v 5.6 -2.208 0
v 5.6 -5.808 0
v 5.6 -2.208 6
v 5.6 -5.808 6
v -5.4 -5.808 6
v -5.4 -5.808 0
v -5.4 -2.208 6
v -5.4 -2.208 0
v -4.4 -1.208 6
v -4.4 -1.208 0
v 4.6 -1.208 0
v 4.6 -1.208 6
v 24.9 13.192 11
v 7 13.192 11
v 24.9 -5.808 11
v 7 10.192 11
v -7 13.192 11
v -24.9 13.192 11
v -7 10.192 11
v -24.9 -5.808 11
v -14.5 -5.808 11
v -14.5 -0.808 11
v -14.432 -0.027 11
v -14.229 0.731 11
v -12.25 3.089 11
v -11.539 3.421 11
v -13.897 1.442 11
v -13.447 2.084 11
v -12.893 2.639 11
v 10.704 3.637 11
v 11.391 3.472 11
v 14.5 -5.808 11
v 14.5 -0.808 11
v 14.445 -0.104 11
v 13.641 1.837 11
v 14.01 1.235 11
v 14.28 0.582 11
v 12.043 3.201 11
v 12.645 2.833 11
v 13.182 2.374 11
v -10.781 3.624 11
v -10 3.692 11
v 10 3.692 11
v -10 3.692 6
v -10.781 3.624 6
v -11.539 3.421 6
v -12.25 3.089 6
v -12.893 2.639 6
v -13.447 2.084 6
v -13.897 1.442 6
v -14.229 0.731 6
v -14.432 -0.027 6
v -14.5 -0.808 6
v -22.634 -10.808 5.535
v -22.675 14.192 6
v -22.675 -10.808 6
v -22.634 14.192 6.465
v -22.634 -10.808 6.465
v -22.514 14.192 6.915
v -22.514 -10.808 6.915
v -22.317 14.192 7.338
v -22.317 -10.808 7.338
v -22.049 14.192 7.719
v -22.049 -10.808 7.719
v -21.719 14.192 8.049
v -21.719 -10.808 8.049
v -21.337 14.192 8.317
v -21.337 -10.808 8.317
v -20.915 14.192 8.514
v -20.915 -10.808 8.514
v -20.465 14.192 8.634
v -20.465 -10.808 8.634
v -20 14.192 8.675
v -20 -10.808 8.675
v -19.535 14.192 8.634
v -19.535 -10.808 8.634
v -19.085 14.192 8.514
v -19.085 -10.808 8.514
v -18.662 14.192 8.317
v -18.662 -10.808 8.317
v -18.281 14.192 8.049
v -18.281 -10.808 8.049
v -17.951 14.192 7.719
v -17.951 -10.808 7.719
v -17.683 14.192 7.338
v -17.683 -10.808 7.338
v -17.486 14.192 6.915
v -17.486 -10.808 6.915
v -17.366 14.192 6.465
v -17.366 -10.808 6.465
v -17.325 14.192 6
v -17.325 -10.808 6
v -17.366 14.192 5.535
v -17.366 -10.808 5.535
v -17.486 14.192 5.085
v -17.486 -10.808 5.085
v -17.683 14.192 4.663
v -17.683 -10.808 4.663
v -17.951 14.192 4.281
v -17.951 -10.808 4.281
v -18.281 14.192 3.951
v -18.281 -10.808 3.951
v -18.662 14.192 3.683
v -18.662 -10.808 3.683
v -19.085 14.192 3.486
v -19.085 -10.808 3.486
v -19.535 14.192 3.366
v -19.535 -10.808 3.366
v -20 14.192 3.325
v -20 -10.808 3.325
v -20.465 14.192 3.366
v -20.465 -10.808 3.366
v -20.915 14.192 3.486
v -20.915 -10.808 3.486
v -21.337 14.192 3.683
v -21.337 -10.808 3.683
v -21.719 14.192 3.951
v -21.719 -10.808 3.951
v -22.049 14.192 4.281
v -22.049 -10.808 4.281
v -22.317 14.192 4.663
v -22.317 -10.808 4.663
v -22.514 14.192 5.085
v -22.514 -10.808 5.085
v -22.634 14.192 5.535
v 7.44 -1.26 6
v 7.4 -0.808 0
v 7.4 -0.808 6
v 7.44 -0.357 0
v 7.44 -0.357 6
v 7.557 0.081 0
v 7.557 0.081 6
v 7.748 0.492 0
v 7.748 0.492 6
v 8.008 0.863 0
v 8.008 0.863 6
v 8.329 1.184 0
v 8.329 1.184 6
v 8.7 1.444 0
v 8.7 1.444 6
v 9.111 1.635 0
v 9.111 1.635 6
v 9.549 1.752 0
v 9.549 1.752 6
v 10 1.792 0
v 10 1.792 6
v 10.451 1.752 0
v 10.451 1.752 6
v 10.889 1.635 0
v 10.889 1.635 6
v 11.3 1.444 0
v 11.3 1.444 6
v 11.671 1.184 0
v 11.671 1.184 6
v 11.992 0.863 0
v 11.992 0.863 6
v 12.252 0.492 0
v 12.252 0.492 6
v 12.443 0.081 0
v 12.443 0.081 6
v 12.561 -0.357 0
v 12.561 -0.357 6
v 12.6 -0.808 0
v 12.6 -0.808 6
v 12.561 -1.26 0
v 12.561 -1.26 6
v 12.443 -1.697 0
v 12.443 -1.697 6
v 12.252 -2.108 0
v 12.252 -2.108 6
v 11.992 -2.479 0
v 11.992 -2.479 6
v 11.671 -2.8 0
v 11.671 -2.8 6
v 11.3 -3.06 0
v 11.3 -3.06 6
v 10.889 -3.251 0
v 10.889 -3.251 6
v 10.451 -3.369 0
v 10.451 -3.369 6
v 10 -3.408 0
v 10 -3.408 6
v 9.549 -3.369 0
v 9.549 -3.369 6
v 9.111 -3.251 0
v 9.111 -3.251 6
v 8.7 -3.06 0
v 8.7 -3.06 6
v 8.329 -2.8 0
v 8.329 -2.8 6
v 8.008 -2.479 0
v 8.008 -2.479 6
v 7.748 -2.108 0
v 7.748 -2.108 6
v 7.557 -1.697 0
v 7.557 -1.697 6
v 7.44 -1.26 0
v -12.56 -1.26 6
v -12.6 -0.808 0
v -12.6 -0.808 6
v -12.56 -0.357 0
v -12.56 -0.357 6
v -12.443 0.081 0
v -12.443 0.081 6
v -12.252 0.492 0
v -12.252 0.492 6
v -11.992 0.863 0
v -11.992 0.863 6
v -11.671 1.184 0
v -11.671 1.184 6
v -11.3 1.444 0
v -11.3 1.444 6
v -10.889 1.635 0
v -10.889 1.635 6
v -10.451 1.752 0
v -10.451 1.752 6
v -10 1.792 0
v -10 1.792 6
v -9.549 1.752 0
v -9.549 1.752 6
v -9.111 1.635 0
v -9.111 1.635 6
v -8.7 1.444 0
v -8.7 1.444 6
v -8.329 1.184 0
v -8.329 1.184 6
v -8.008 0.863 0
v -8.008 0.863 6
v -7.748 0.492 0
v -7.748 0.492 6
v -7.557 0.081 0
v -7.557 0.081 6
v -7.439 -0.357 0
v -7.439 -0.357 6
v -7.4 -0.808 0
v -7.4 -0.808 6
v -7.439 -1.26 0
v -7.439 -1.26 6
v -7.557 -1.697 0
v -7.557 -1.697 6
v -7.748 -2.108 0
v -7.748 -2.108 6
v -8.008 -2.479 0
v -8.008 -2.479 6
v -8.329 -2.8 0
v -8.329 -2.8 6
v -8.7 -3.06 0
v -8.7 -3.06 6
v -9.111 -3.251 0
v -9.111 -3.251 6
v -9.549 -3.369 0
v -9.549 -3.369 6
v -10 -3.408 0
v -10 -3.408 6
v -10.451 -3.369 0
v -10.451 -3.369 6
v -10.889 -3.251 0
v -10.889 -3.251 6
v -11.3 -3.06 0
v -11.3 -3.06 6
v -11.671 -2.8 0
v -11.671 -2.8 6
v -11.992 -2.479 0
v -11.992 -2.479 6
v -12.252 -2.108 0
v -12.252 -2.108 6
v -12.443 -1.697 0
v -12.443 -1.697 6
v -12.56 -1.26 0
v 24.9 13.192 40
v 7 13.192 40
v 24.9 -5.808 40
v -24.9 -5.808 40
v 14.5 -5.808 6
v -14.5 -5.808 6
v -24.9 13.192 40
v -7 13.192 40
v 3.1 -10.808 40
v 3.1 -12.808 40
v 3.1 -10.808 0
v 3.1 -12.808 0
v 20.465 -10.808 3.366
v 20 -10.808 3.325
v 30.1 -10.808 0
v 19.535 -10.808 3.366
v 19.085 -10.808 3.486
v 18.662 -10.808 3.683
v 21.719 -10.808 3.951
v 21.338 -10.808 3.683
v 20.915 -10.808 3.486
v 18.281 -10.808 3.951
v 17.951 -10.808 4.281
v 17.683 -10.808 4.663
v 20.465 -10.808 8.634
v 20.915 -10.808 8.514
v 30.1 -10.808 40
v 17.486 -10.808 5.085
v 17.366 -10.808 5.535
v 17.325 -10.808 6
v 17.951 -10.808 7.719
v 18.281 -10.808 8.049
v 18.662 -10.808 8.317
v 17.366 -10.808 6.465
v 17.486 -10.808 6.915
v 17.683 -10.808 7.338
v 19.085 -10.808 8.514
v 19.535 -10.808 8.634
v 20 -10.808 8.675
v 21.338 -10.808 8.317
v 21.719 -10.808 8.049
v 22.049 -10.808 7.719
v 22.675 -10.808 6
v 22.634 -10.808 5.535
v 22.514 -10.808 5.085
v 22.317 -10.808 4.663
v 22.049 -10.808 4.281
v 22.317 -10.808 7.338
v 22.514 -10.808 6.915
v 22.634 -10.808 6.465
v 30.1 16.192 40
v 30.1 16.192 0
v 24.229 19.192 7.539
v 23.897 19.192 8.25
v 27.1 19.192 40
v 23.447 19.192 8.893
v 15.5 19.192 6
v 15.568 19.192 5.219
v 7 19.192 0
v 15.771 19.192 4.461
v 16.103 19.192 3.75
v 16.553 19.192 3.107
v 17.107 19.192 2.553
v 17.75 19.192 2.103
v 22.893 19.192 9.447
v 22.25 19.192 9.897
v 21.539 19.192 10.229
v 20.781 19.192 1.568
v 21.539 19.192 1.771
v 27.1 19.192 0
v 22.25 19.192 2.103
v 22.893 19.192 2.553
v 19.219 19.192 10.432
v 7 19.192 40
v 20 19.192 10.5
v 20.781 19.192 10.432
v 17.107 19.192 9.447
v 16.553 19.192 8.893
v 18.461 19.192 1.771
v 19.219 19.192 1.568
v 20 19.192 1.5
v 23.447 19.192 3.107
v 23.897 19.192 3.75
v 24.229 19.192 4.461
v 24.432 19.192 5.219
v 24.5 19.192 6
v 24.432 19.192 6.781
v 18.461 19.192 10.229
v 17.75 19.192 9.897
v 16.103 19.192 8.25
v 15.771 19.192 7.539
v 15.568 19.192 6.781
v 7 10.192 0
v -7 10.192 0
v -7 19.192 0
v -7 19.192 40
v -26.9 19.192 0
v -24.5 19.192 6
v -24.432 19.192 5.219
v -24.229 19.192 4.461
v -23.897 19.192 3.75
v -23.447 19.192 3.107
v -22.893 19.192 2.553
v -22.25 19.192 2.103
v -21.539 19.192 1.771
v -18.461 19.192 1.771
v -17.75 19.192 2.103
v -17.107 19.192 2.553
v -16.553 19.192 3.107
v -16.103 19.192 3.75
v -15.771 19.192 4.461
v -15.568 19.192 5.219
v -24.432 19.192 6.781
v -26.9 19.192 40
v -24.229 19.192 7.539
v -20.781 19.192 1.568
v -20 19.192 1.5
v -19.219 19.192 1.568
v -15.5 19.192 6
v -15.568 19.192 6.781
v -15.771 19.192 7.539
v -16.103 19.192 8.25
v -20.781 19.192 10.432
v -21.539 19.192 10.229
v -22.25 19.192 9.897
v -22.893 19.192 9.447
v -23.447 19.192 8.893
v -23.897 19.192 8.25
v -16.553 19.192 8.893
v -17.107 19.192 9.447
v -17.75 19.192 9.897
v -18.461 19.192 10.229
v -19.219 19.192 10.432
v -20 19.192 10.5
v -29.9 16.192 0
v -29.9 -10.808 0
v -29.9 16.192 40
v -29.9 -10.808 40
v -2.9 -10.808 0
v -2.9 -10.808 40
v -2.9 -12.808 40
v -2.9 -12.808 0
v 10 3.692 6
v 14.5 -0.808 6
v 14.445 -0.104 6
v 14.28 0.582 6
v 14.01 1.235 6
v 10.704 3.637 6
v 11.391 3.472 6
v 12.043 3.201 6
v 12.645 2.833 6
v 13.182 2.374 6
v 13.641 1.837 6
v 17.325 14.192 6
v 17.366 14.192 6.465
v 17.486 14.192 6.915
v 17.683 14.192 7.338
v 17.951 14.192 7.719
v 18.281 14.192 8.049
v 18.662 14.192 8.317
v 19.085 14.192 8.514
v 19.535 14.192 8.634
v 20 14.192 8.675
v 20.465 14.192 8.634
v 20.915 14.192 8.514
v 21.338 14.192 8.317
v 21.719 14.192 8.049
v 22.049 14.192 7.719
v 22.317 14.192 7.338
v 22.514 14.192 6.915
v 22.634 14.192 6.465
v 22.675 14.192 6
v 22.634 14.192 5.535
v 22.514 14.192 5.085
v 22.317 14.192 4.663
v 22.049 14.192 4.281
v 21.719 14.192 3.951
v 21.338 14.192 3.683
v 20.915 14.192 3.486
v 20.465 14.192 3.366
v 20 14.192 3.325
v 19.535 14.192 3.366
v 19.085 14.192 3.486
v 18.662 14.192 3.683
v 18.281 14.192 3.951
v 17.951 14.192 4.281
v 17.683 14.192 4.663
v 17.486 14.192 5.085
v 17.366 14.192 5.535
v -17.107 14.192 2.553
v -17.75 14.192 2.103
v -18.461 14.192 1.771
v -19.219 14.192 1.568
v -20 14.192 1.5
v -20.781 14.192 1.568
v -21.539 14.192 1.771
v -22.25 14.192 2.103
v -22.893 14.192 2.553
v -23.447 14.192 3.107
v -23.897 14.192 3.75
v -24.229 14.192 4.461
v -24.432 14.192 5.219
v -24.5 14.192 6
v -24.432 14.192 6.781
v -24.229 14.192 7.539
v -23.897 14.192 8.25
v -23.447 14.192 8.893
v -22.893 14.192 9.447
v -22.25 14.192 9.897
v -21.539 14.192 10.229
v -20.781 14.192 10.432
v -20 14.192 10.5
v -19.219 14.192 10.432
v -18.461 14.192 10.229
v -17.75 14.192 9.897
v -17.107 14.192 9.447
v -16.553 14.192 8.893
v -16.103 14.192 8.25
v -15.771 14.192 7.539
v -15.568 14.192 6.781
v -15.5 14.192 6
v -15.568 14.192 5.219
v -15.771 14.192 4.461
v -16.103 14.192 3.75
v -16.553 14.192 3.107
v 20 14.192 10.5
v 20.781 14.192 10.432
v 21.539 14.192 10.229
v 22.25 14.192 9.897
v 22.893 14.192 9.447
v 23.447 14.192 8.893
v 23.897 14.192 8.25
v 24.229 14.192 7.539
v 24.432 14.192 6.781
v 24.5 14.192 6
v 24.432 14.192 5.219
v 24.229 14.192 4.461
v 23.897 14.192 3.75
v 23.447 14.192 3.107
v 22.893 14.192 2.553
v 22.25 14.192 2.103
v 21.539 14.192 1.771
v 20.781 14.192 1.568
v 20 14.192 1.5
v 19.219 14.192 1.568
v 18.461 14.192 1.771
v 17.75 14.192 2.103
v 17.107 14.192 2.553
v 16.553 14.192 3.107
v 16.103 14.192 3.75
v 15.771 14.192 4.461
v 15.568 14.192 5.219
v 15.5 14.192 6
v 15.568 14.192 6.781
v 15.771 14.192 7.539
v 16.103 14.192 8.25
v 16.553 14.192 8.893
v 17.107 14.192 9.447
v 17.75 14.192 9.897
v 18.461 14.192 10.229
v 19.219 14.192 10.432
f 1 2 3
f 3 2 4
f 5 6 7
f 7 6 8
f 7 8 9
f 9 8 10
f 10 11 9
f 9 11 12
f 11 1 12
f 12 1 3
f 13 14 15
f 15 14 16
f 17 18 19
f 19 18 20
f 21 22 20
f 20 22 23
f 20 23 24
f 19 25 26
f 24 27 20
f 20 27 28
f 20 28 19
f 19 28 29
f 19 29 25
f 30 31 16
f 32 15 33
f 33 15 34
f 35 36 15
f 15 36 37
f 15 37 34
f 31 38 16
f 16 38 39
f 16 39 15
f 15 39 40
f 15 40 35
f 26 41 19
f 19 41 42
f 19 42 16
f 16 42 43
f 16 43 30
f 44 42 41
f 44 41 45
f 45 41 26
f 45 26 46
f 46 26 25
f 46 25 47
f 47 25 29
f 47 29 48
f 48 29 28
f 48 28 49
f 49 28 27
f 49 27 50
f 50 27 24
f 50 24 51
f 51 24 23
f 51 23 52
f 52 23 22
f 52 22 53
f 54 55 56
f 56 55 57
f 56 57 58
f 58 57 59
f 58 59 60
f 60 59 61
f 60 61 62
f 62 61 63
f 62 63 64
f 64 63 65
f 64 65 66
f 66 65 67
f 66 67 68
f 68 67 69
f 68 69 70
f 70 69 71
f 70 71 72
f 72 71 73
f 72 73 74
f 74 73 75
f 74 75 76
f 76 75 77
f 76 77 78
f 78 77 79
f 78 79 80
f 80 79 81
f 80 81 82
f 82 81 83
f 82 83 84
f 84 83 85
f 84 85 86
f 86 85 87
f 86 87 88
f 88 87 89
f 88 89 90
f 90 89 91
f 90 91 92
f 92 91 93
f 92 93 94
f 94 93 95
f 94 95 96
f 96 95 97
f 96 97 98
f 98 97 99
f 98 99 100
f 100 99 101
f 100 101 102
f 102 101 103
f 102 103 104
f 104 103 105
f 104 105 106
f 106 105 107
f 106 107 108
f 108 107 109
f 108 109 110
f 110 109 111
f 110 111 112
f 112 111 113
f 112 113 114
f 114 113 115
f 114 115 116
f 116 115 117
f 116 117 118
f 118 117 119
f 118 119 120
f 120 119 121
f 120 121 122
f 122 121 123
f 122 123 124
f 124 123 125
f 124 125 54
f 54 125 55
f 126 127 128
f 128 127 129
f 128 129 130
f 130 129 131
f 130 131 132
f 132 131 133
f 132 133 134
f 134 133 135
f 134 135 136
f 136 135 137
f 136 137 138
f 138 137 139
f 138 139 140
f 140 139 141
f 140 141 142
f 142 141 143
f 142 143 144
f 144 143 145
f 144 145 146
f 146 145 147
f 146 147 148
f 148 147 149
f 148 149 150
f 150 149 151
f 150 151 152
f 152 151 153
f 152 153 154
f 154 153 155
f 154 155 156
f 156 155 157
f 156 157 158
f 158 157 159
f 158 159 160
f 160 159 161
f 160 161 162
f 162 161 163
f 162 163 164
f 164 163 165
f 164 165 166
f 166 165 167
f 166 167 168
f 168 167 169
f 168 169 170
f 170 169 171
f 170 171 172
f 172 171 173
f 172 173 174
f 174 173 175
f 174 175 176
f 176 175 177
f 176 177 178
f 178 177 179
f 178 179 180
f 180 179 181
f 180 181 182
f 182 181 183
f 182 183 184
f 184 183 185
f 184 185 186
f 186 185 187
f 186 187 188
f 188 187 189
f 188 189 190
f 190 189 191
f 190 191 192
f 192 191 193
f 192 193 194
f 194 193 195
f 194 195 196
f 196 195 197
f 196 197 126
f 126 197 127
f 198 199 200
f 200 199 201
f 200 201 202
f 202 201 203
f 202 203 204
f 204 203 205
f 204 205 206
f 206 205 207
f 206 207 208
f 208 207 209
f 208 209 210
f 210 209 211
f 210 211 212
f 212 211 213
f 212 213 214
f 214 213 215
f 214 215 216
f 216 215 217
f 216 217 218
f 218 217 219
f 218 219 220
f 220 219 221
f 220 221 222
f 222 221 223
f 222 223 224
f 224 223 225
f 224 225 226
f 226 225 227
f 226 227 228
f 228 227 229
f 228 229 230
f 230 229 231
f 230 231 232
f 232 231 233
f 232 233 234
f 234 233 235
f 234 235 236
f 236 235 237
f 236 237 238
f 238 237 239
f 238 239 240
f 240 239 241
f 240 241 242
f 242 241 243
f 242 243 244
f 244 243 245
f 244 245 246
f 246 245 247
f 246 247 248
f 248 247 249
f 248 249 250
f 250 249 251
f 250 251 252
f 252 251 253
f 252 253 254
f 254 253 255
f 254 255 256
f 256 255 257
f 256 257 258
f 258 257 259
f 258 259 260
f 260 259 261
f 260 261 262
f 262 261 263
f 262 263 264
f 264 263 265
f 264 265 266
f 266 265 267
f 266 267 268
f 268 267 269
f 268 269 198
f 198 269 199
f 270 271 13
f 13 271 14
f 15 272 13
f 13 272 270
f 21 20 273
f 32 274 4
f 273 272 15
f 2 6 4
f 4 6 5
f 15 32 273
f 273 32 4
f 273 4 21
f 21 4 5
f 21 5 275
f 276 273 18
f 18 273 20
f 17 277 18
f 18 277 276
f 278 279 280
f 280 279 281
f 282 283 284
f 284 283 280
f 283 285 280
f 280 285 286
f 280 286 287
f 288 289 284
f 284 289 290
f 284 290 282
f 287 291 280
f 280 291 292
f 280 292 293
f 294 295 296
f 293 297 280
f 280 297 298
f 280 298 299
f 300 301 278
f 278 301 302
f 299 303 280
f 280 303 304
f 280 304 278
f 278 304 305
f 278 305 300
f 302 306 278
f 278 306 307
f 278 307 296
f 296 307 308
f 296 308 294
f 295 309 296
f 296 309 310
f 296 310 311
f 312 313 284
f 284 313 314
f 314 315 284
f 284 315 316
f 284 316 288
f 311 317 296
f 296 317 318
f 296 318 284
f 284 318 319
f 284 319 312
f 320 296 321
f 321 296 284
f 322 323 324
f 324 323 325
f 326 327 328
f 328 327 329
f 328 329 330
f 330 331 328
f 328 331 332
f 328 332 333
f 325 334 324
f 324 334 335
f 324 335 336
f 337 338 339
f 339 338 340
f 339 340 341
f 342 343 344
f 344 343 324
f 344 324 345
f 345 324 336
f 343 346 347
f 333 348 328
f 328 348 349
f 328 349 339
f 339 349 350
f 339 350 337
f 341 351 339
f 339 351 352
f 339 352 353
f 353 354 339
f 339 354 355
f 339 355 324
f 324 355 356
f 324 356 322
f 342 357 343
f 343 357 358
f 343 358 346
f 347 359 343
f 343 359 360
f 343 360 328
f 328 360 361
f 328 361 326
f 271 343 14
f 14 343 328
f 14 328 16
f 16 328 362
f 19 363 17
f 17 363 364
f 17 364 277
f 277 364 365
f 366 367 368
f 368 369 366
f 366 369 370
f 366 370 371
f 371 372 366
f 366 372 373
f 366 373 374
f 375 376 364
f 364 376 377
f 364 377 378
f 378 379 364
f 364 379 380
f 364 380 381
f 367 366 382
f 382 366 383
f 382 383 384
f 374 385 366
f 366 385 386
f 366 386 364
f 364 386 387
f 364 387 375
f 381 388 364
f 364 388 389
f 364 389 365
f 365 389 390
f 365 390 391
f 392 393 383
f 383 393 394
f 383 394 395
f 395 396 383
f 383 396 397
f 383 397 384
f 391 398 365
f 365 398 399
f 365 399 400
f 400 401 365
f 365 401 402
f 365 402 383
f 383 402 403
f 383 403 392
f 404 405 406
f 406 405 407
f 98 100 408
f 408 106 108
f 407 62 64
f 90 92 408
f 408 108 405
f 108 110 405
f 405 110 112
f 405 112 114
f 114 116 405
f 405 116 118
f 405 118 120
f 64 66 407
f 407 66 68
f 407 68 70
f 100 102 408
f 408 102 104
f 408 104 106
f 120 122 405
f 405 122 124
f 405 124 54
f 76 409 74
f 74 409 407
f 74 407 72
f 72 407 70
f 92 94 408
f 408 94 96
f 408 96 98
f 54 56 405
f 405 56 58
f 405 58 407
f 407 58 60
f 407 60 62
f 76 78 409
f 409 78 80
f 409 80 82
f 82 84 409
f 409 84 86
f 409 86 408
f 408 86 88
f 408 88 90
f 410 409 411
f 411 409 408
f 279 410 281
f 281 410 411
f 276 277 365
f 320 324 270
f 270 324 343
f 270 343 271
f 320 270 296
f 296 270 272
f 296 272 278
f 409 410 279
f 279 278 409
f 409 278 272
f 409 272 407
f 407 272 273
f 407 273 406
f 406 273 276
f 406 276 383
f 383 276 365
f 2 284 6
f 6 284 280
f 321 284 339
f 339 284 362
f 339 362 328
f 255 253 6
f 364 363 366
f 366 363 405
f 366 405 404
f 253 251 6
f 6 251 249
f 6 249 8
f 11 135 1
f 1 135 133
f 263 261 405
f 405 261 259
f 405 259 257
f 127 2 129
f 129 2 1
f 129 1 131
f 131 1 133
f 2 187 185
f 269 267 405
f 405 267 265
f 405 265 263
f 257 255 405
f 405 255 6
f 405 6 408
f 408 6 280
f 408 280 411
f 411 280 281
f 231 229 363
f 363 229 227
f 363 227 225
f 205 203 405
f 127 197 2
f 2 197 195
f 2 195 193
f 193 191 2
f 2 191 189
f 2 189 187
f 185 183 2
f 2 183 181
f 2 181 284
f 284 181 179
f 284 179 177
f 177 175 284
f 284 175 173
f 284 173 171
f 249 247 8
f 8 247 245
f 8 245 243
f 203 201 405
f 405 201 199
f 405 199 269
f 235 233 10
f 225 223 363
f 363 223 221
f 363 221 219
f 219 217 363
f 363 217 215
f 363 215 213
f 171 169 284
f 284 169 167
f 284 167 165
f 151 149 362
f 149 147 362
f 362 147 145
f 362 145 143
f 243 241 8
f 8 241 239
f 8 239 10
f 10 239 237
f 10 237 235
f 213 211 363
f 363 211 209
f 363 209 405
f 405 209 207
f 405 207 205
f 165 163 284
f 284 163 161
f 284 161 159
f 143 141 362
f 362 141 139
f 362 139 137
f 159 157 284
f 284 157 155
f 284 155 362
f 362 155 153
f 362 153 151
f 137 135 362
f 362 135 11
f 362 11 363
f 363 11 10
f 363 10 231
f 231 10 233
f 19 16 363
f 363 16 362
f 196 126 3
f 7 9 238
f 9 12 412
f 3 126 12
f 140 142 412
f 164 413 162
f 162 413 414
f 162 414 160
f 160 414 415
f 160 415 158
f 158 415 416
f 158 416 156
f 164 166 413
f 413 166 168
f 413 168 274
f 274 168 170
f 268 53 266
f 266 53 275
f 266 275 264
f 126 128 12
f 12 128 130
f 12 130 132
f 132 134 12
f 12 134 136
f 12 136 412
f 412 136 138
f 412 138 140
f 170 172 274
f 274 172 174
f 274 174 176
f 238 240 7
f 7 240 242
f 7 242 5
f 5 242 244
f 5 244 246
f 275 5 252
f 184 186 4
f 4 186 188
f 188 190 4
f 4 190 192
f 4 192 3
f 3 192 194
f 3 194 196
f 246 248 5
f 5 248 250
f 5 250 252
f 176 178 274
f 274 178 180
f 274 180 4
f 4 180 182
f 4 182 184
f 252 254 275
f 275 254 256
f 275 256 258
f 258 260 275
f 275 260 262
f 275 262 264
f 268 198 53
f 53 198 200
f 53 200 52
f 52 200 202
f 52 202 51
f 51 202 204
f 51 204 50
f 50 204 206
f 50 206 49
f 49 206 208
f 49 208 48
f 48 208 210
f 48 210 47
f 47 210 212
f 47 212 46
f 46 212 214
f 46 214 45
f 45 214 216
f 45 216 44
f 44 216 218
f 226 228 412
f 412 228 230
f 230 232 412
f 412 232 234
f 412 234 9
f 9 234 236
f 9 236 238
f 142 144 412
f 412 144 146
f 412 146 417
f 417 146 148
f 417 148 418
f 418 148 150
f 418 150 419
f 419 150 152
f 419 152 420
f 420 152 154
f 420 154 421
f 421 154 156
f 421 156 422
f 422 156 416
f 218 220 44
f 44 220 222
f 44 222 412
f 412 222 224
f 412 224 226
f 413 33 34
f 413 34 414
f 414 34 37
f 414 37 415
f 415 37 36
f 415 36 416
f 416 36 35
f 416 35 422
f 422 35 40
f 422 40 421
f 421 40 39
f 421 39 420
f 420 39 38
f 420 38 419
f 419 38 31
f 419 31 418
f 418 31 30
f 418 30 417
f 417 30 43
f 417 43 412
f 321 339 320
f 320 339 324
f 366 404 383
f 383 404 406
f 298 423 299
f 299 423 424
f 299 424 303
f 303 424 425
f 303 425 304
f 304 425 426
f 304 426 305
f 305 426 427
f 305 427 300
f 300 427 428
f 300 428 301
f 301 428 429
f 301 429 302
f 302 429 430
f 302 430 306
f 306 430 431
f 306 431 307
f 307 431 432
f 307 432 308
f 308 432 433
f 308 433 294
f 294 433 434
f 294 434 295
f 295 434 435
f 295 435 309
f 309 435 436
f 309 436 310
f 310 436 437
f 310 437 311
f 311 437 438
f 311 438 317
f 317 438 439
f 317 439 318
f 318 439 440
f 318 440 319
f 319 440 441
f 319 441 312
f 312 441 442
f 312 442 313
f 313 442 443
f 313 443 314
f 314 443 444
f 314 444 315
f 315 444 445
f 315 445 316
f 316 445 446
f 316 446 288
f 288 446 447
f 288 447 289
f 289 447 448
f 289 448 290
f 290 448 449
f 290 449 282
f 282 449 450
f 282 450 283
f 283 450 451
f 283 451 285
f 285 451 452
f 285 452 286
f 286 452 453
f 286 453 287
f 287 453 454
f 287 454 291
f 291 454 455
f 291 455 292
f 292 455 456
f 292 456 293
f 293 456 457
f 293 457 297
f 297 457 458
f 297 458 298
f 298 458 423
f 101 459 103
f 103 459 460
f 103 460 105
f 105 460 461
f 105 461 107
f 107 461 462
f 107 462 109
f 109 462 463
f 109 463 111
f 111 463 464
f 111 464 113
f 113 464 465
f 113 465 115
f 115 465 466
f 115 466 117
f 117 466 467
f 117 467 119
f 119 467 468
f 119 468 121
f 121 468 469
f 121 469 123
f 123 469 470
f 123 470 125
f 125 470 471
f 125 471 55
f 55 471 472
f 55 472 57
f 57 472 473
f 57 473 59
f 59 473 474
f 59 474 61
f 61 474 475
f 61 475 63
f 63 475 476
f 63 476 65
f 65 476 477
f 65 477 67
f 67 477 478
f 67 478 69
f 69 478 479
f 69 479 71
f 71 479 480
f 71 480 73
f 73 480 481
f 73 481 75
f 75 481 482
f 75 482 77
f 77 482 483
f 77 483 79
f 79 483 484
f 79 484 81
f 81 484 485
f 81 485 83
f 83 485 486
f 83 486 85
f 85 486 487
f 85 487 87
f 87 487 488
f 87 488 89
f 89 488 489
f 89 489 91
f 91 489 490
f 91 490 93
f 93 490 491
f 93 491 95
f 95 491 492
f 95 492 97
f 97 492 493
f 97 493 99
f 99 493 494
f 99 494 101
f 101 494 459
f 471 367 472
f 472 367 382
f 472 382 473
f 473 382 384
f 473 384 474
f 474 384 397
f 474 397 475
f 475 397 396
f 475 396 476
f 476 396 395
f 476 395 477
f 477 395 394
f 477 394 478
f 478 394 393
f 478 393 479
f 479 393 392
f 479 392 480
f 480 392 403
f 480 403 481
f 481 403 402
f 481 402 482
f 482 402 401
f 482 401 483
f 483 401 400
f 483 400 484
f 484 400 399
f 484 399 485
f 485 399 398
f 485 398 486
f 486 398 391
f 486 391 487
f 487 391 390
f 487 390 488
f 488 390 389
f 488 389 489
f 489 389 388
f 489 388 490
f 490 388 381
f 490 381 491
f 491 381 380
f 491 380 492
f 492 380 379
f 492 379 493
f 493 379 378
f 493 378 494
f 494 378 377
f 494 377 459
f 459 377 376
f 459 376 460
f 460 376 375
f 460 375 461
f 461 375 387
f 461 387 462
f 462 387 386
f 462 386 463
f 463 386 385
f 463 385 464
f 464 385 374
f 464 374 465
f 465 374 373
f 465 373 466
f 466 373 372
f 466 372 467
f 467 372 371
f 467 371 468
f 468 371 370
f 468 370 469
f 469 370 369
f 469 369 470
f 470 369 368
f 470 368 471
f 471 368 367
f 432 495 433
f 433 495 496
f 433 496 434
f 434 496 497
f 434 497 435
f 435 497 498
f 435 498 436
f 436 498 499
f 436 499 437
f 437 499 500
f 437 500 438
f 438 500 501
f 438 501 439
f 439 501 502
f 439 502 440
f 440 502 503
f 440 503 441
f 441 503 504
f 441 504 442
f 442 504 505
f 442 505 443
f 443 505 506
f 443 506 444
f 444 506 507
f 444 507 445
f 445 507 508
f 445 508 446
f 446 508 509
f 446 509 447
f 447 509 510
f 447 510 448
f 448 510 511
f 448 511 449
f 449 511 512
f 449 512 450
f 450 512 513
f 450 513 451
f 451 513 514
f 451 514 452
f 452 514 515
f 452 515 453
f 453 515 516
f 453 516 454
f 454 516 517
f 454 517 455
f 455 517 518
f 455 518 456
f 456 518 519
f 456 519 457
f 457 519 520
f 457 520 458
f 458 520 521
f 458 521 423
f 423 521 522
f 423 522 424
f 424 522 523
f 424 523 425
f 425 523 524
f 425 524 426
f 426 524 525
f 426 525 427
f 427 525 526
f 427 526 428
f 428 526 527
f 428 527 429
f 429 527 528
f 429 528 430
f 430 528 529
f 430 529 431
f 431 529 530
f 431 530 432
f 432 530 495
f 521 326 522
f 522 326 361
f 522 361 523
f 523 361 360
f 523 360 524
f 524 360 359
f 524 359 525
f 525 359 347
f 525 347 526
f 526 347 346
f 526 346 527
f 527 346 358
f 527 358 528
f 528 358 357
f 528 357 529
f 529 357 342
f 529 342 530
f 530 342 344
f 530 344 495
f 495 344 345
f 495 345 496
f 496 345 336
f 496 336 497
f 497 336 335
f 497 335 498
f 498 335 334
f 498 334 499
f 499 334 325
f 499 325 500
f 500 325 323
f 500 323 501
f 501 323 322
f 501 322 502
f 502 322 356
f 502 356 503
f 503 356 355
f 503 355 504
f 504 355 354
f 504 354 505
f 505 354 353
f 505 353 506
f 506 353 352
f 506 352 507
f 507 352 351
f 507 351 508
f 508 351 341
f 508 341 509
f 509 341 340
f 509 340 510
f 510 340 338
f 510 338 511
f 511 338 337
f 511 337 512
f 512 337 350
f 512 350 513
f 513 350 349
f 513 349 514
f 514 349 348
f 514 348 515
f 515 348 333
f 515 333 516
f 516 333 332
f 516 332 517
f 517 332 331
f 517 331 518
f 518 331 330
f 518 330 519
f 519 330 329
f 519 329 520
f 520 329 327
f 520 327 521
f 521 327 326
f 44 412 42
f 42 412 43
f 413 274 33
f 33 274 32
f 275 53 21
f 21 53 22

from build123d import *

# Parameters (mm, degrees)
BOSS_EXTRUDE1_DEPTH = 40
SKETCH2_R           = 2.6
BOSS_EXTRUDE2_DEPTH = 11
SKETCH3_R           = 4.5
CUT_EXTRUDE1_DEPTH  = 5
CHAMFER1_SIZE       = 3
SKETCH4_R           = 2.675
CUT_EXTRUDE5_DEPTH  = 60.413887266
SKETCH5_R           = 4.5
CUT_EXTRUDE6_DEPTH  = 5
CUT_EXTRUDE7_START  = -5
CUT_EXTRUDE7_DEPTH  = 5


# Read off the part's stored shape, not the designer's step: Cut-Extrude7
with BuildPart() as part:
    # Sketch1 → Boss-Extrude1 (new body)
    with BuildSketch(Plane.XY):
        Polygon((-29.9, 19.191927939), (-29.9, -10.808072061), (-2.9, -10.808072061), (-2.9, -12.808072061), (3.1, -12.808072061), (3.1, -10.808072061), (30.1, -10.808072061), (30.1, 19.191927939), (7, 19.191927939), (7, 13.191927939), (24.9, 13.191927939), (24.9, -5.808072061), (5.6, -5.808072061), (-5.4, -5.808072061), (-24.9, -5.808072061), (-24.9, 13.191927939), (-7, 13.191927939), (-7, 19.191927939), align=None)
    extrude(amount=BOSS_EXTRUDE1_DEPTH)

    # Sketch2 → Boss-Extrude2 (add)
    with BuildSketch(Plane(origin=(0, 0, 0), x_dir=(-1, 0, 0), z_dir=(0, 0, -1))):
        Polygon((-7, 10.191927939), (-7, 13.191927939), (-24.9, 13.191927939), (-24.9, -5.808072061), (-5.6, -5.808072061), (-5.6, -2.208368155), (-4.6, -1.208368155), (4.4, -1.208368155), (5.4, -2.208368155), (5.4, -5.808072061), (24.9, -5.808072061), (24.9, 13.191927939), (7, 13.191927939), (7, 10.191927939), align=None)
        with Locations((-10, -0.808072061)):
            Circle(SKETCH2_R, mode=Mode.SUBTRACT)
        with Locations((10, -0.808092061)):
            Circle(SKETCH2_R, mode=Mode.SUBTRACT)
    extrude(amount=-BOSS_EXTRUDE2_DEPTH)

    # Sketch3 → Cut-Extrude1 (cut)
    with BuildSketch(Plane.XY.offset(11)):
        with Locations((-10, -0.808092061)):
            Circle(SKETCH3_R)
        with Locations((10, -0.808072061)):
            Circle(SKETCH3_R)
    extrude(amount=-CUT_EXTRUDE1_DEPTH, mode=Mode.SUBTRACT)

    # Chamfer1
    chamfer1_edges = [part.edges().sort_by_distance(p)[0] for p in [
        (-29.9, 19.191927939, 20),
        (30.1, 19.191927939, 20),
    ]]
    chamfer(chamfer1_edges, length=CHAMFER1_SIZE)

    # Sketch4 → Cut-Extrude5 (cut, through all)
    with BuildSketch(Plane(origin=(0, 19.191927939, 0), x_dir=(1, 0, 0), z_dir=(0, 1, 0))):
        with Locations(Location((-20, -6, 0), (0, 0, 180))):
            Circle(SKETCH4_R)
        with Locations(Location((20, -6, 0), (0, 0, 270))):
            Circle(SKETCH4_R)
    extrude(amount=-CUT_EXTRUDE5_DEPTH, mode=Mode.SUBTRACT)

    # Sketch5 → Cut-Extrude6 (cut)
    with BuildSketch(Plane(origin=(0, 19.191927939, 0), x_dir=(1, 0, 0), z_dir=(0, 1, 0))):
        with Locations(Location((-20, -6, 0), (0, 0, 180))):
            Circle(SKETCH5_R)
        with Locations((20, -6)):
            Circle(SKETCH5_R)
    extrude(amount=-CUT_EXTRUDE6_DEPTH, mode=Mode.SUBTRACT)

    # Cut-Extrude7 outline → Cut-Extrude7 (cut)
    with BuildSketch(Plane.XY.offset(11).offset(CUT_EXTRUDE7_START)):
        with BuildLine():
            Line((9.9999955, 3.691927939), (-10.0000045, 3.691907939))
            ThreePointArc((-10.0000045, 3.691907939), (-6.818017894, -3.990070985), (-14.5, -0.808092061))
            Line((-14.5, -0.808092061), (-14.5, -5.808072061))
            Line((-14.5, -5.808072061), (-5.4, -5.808072061))
            Line((-5.4, -5.808072061), (-5.4, -2.208368155))
            Line((-5.4, -2.208368155), (-4.4, -1.208368155))
            Line((-4.4, -1.208368155), (4.6, -1.208368155))
            Line((4.6, -1.208368155), (5.6, -2.208368155))
            Line((5.6, -2.208368155), (5.6, -5.808072061))
            Line((5.6, -5.808072061), (14.5, -5.808072061))
            Line((14.5, -5.808072061), (14.5, -0.808072061))
            ThreePointArc((14.5, -0.808072061), (6.818021076, -3.990054167), (9.9999955, 3.691927939))
        make_face()
    extrude(amount=CUT_EXTRUDE7_DEPTH, mode=Mode.SUBTRACT)


solid = part.part
